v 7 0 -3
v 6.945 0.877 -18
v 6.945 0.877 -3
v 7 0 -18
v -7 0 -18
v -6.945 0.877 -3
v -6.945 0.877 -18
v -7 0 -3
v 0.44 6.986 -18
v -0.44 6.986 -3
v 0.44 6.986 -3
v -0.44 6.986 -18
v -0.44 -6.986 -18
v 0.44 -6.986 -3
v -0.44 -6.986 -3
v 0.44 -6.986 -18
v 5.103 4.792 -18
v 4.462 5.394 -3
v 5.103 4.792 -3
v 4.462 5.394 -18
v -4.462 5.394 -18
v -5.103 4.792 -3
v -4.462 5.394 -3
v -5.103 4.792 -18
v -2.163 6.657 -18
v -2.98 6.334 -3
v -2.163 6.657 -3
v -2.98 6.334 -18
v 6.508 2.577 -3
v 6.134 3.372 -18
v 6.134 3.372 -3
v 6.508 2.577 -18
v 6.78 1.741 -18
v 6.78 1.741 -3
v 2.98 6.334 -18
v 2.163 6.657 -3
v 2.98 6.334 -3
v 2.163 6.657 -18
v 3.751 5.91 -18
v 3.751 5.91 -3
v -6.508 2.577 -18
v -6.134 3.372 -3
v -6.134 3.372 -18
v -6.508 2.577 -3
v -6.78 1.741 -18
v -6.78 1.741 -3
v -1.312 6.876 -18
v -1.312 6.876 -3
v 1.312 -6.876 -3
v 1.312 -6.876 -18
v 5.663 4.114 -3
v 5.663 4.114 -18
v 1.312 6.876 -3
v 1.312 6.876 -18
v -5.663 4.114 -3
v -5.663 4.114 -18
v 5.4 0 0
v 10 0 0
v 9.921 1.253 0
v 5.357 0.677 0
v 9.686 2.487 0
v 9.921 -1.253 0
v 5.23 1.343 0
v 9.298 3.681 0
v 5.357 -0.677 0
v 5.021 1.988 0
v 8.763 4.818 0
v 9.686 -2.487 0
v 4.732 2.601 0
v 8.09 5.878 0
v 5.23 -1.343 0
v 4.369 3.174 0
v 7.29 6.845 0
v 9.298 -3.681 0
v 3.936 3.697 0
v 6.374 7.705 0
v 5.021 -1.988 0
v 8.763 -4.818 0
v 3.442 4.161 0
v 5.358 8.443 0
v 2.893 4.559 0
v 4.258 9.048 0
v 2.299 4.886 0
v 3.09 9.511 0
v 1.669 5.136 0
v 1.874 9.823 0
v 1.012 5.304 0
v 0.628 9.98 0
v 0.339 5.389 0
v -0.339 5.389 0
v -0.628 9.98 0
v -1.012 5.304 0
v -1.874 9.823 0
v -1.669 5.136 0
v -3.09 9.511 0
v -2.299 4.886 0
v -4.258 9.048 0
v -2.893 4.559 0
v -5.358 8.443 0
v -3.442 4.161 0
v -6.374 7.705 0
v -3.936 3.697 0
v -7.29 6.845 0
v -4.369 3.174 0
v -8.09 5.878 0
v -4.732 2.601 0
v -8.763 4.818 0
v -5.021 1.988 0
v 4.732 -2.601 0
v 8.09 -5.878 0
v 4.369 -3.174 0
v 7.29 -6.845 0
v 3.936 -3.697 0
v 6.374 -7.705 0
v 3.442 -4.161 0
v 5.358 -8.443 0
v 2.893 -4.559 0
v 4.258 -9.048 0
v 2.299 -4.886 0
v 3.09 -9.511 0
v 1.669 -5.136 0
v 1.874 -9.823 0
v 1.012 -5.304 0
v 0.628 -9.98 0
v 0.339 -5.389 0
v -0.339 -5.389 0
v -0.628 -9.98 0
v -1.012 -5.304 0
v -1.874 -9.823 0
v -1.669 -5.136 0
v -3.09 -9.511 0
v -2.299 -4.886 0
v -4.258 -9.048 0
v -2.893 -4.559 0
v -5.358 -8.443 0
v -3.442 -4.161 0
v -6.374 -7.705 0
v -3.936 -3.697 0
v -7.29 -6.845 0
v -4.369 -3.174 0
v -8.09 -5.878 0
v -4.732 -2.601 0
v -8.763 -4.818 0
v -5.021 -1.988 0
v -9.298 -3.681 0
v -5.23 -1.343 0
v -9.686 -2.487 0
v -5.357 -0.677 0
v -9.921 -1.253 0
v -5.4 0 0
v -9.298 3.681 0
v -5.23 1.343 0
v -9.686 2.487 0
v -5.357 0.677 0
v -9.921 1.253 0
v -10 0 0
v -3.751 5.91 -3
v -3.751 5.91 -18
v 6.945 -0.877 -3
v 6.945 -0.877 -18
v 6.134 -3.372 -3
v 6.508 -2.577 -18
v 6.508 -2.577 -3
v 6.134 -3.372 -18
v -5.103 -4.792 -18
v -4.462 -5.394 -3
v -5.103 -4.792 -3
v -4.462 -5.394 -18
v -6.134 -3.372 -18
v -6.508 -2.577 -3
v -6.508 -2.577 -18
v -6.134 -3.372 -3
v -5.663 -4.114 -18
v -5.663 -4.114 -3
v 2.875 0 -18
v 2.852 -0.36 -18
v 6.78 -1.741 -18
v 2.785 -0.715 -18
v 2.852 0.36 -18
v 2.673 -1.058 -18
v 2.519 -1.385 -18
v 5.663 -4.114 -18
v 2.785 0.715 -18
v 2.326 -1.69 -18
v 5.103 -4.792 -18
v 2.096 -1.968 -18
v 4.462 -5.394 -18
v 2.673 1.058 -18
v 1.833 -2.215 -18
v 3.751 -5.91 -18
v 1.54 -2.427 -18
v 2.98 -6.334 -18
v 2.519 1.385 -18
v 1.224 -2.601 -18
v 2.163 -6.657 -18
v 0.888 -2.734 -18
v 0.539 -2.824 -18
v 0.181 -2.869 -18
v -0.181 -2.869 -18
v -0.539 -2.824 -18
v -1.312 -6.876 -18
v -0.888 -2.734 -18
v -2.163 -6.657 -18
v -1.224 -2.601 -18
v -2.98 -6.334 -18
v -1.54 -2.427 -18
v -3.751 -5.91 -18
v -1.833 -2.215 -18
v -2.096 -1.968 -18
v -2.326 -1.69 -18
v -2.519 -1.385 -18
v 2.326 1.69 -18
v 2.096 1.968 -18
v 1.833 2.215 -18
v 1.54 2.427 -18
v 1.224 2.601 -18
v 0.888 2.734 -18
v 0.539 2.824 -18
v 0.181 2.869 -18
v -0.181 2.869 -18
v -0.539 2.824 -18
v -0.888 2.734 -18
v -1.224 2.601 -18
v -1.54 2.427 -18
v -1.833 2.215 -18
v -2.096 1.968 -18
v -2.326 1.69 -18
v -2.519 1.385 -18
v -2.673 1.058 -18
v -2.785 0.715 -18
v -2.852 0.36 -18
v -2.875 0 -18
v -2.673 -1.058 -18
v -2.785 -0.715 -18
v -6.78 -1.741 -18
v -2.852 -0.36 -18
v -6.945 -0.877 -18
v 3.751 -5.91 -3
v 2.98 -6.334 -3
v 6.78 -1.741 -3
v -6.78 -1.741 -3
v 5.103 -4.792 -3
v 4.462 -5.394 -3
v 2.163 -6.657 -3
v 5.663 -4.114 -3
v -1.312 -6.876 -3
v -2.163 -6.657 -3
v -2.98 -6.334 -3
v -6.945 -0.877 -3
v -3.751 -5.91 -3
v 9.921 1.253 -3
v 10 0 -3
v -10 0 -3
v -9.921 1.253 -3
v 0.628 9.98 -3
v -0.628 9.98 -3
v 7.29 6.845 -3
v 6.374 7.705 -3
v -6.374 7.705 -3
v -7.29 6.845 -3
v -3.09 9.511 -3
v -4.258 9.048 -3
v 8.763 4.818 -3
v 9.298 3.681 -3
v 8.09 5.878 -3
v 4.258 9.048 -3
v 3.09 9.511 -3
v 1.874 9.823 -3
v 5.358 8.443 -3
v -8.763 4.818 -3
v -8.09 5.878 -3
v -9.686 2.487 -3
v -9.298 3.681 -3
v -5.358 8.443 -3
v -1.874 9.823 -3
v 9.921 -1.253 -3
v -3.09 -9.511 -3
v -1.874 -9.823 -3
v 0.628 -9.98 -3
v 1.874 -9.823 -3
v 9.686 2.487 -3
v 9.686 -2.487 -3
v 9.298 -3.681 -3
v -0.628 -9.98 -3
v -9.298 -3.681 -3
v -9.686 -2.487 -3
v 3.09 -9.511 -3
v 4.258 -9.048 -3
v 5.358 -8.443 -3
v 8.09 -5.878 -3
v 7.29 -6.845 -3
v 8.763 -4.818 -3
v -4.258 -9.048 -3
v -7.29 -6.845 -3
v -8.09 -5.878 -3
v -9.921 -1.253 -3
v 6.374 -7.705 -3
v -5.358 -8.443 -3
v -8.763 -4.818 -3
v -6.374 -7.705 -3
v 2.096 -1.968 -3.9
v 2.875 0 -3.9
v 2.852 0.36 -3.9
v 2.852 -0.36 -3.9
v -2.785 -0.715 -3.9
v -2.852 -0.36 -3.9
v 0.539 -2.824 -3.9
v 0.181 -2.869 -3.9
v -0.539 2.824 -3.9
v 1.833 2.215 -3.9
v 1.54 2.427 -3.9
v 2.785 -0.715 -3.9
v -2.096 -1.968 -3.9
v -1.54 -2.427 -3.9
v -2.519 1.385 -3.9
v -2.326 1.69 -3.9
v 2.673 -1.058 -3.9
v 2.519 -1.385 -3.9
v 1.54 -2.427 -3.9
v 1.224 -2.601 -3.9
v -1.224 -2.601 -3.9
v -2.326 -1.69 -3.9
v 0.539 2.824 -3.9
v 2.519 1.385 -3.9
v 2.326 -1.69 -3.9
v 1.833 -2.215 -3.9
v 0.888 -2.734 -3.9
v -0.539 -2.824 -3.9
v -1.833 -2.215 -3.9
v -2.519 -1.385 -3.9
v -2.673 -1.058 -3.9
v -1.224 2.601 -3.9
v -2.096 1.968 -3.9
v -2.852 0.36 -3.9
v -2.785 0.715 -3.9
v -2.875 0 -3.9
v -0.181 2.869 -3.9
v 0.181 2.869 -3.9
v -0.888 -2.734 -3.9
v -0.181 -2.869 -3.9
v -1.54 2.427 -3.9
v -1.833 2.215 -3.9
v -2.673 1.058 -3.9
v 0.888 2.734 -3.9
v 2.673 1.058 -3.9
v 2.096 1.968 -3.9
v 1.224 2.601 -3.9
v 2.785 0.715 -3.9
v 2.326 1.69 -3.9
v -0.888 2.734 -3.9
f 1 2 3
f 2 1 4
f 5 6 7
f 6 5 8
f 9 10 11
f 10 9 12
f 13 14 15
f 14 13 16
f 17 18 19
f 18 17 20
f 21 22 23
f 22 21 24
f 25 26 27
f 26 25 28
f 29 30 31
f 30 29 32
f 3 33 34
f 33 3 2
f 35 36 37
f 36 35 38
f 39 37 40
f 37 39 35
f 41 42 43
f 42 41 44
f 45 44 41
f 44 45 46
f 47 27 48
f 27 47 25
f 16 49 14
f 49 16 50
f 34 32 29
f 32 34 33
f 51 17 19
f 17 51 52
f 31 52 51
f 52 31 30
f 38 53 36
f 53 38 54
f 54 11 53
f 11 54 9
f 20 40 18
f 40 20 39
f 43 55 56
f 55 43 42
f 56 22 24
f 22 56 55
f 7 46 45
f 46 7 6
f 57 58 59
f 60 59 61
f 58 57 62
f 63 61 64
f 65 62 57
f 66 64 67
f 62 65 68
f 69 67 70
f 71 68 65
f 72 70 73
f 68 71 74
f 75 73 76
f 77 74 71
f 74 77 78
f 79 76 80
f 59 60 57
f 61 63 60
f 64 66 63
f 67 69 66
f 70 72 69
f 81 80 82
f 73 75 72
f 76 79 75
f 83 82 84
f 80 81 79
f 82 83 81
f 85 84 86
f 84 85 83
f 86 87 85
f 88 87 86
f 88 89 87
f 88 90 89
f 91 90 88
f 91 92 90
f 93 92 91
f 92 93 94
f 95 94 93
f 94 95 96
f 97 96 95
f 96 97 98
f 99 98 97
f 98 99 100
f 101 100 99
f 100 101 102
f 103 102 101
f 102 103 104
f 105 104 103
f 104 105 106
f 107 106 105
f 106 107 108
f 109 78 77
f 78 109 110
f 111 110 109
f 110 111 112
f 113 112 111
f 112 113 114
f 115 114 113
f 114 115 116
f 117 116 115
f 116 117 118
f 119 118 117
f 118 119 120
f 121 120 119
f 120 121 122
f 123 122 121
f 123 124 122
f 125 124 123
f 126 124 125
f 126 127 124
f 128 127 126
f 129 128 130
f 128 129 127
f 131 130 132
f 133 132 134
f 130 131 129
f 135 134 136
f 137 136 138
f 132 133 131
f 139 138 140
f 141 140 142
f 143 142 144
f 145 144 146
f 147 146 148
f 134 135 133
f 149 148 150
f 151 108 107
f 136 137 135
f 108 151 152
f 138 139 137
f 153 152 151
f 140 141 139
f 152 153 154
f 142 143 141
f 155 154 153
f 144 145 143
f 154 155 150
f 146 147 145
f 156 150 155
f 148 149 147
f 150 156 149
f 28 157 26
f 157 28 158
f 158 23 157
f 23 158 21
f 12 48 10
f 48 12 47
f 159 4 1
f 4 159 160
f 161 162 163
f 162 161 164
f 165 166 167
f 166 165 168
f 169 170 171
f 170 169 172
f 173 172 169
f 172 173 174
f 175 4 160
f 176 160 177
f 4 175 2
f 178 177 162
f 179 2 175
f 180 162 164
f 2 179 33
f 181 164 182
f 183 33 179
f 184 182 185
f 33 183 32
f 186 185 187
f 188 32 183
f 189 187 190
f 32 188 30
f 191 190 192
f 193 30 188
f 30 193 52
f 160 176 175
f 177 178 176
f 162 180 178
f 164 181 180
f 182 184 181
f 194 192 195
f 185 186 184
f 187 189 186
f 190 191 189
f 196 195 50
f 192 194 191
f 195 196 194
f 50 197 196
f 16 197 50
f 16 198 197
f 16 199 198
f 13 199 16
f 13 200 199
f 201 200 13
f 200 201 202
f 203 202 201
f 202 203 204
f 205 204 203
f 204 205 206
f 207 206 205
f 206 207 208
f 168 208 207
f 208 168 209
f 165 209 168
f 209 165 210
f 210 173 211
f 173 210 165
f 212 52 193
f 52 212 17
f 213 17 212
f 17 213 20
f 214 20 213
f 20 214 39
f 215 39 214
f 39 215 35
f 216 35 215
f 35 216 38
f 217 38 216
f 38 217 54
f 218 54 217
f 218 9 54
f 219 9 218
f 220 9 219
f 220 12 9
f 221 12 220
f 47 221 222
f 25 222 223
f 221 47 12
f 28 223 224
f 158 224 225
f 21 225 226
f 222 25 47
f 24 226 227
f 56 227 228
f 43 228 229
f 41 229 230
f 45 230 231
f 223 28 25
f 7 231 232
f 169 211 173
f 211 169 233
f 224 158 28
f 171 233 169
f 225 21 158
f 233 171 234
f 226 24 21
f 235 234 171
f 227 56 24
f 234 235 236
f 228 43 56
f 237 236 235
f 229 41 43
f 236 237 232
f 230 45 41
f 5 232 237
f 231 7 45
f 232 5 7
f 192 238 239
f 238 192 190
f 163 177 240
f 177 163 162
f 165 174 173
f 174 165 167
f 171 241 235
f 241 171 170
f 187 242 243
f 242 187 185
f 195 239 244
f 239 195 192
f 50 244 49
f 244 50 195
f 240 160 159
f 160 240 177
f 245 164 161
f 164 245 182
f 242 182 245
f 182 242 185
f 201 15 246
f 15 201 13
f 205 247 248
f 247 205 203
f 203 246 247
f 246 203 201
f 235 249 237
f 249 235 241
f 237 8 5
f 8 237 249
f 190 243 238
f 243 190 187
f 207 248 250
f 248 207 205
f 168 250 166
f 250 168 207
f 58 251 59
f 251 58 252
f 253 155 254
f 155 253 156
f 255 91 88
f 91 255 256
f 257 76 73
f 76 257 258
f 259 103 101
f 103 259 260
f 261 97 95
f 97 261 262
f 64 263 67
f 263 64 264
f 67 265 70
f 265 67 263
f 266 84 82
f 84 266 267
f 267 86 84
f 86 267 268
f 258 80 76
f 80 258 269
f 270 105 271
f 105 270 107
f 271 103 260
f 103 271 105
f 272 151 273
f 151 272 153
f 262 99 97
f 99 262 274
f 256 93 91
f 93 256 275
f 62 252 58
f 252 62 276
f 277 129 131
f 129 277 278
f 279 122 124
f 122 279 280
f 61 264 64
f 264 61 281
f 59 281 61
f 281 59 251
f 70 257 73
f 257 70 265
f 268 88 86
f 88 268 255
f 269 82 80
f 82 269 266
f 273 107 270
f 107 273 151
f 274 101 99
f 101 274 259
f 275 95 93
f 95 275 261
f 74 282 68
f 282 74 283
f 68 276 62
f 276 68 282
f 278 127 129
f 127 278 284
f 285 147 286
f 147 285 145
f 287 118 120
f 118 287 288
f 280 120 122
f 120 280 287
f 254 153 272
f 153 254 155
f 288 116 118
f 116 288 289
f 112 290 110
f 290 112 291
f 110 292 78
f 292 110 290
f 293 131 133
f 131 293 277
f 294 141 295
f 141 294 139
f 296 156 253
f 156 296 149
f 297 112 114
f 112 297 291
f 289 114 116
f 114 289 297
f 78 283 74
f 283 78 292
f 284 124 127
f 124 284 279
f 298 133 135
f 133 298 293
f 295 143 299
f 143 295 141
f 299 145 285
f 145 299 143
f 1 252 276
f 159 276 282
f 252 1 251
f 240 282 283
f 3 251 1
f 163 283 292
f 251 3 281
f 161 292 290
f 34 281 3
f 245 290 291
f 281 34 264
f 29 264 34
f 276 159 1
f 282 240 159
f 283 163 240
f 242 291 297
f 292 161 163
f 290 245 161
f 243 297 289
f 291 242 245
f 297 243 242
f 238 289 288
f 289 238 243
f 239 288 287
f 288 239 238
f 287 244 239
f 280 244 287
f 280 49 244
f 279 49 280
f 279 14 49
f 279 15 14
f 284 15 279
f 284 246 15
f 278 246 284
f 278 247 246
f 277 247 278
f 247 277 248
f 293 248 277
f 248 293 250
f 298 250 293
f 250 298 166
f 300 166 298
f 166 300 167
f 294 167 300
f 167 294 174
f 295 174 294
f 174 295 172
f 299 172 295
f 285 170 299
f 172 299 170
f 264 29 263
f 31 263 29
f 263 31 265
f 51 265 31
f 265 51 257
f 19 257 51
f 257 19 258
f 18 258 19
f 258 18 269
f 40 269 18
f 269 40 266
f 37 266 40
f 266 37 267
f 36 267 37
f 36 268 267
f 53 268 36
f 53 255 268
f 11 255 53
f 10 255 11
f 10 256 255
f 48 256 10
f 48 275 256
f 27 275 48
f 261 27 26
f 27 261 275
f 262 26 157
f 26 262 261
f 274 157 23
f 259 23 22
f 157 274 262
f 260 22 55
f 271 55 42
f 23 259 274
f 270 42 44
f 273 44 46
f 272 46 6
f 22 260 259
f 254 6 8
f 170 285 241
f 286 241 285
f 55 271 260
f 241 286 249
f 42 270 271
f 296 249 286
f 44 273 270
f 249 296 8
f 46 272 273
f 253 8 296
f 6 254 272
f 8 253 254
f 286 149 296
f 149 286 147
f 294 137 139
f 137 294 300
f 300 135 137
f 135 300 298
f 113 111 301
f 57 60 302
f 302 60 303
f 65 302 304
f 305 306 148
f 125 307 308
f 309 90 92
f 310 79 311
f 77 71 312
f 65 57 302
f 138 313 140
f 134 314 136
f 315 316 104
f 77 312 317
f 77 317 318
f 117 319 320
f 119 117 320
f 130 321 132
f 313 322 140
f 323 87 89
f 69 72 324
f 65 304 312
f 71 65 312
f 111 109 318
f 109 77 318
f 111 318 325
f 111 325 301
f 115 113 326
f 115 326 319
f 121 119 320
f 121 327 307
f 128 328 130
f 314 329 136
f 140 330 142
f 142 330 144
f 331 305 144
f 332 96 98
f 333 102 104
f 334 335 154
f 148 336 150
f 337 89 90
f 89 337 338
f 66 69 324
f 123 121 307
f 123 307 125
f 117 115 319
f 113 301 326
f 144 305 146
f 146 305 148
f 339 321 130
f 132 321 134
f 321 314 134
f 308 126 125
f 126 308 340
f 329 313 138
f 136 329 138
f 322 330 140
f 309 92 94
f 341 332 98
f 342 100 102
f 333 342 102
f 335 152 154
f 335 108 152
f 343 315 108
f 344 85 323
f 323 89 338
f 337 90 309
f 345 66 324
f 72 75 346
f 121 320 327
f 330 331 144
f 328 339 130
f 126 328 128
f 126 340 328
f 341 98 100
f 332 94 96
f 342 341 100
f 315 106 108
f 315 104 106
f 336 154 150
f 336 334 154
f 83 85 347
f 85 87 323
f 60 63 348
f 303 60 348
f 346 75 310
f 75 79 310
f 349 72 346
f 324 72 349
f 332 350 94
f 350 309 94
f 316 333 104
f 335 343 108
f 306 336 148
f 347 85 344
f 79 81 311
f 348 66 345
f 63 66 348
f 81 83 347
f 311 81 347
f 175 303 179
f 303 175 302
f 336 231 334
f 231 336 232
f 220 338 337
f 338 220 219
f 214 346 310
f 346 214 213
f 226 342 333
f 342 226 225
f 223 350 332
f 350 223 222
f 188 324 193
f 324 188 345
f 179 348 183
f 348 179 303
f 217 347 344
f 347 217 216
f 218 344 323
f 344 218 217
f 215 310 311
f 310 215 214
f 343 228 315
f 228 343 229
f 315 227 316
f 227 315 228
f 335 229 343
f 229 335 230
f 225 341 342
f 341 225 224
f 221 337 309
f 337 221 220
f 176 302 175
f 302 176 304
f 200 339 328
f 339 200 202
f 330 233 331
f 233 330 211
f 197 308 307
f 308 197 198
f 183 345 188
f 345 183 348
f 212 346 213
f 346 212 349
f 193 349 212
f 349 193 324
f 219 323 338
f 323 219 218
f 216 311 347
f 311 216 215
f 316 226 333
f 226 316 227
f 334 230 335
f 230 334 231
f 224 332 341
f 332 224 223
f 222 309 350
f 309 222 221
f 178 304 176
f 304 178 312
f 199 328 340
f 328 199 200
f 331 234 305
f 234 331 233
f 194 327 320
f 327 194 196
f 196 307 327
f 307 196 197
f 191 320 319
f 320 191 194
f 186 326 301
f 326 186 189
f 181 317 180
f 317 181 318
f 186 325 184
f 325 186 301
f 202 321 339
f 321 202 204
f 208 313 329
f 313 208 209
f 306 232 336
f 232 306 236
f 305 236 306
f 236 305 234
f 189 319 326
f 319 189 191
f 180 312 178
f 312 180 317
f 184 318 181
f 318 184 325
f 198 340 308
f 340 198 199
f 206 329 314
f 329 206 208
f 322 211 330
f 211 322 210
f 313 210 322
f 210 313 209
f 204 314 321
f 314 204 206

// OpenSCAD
$fn = 50;


difference() {
	union() {
		translate(v = [0, 0, -18.0000000000]) {
			cylinder(h = 18, r = 7.0000000000);
		}
		translate(v = [0, 0, -3.0000000000]) {
			cylinder(h = 3, r = 10.0000000000);
		}
	}
	union() {
		translate(v = [0, 0, 0]) {
			rotate(a = [0, 0, 0]) {
				difference() {
					union() {
						#translate(v = [0, 0, -18.0000000000]) {
							cylinder(h = 18, r = 2.6000000000);
						}
						#translate(v = [0, 0, -3.9000000000]) {
							cylinder(h = 3.9000000000, r = 7.0000000000, r1 = 2.8750000000, r2 = 5.4000000000);
						}
						#translate(v = [0, 0, -18.0000000000]) {
							cylinder(h = 18, r = 2.8750000000);
						}
						#translate(v = [0, 0, -18.0000000000]) {
							cylinder(h = 18, r = 2.6000000000);
						}
					}
					union();
				}
			}
		}
	}
}
